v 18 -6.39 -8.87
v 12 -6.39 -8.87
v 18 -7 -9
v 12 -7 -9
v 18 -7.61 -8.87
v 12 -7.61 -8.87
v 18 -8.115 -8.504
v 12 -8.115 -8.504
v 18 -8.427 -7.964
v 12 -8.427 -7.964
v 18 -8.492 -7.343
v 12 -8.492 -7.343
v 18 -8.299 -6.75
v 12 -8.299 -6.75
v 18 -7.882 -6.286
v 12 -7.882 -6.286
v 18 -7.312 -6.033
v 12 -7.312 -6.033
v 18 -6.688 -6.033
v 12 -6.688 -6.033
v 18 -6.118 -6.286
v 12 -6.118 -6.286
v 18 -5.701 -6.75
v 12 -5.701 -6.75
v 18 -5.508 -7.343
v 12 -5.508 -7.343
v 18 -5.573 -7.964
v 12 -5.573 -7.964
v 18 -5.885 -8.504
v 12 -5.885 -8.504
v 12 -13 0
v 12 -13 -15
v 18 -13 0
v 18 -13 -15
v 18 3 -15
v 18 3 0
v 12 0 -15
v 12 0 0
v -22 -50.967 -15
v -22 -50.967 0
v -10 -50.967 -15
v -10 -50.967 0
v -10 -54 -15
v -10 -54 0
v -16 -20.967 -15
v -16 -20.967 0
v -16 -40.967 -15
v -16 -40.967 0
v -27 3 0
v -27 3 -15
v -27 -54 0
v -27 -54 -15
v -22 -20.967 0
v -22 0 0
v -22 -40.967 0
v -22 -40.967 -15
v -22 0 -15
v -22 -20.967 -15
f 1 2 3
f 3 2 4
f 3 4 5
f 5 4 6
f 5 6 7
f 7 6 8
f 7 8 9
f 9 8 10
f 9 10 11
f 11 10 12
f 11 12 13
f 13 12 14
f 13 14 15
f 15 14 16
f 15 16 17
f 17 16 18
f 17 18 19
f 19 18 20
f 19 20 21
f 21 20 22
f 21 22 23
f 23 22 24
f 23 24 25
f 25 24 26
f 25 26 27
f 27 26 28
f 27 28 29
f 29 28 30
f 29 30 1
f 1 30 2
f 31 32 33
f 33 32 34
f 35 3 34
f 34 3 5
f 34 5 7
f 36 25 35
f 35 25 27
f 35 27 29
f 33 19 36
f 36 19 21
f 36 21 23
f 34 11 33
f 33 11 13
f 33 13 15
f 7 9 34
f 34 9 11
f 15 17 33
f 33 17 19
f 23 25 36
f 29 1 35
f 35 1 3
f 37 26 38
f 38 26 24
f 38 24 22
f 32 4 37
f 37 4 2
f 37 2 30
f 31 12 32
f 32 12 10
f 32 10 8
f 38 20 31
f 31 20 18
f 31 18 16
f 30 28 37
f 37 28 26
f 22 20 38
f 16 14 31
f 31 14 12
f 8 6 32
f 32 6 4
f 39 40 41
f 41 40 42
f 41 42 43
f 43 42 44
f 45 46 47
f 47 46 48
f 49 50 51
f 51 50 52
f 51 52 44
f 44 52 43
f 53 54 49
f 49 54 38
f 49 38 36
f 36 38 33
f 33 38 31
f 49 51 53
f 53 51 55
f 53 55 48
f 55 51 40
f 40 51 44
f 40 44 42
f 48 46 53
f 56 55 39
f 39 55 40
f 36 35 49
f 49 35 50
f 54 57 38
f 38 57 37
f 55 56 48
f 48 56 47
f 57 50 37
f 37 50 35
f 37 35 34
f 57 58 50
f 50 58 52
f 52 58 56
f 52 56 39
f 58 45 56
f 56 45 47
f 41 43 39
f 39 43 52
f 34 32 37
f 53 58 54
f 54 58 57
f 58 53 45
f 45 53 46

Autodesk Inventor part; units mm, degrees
ref_plane "YZ Plane" through (0, 0, 0) normal (1, 0, 0) x (0, 1, 0)
ref_plane "XZ Plane" through (0, 0, 0) normal (0, 1, 0) x (-1, 0, 0)
ref_plane "XY Plane" through (0, 0, 0) normal (0, 0, 1) x (1, 0, 0)
sketch "Boceto1" plane through (0, 0, 0) normal (0, 1, 0) x (-1, 0, 0)
  line L0 (0, 0) -> (22, 0)
  line L1 (22, 0) -> (22, -15)
  line L2 (22, -15) -> (0, -15)
  line L3 (0, -15) -> (-12, -15)
  line L4 (-12, -15) -> (-12, 0)
  line L5 (-12, 0) -> (0, 0)
  dimension "d15" = 12
extrude "Extrusión1" add sketch "Boceto1" along normal blind 3
sketch "Boceto3" plane through (0, 3, 0) normal (0, 1, 0) x (1, 0, 0)
  line L0 (-22, 15) -> (-22, 0) projected
  line L1 (-22, 15) -> (-27, 15)
  line L2 (-27, 15) -> (-27, 0)
  line L3 (-27, 0) -> (-22, 0)
  line L4 (-22, 0) -> (-22, 15)
  point P0 (0, 0)
  dimension "d4" = 5
extrude "Extrusión2" add sketch "Boceto3" against normal blind 57
sketch "Boceto4" plane through (-22, -54, 0) normal (1, 0, 0) x (0, 0, -1)
  point P0 (0, 54)
sketch "Boceto5" plane through (-22, -54, 0) normal (1, 0, 0) x (0, 0, -1)
  line L0 (0, 57) -> (0, 0) projected
  line L1 (15, 57) -> (15, 0) projected
  line L2 (0, 0) -> (15, 0)
  line L3 (15, 0) -> (15, 3.0333)
  line L4 (15, 3.0333) -> (0, 3.0333)
  line L5 (0, 3.0333) -> (0, 0)
  point P0 (0, 54)
extrude "Extrusión3" add sketch "Boceto5" along normal blind 12
sketch "Boceto7" plane through (12, 0, 0) normal (1, 0, 0) x (0, 0, -1)
  line L0 (0, 0) -> (0, -50.9667) projected
  line L1 (0, 3) -> (0, 0)
  line L2 (0, 0) -> (0, -7)
  line L3 (0, -7) -> (10.8666, -7)
  line L4 (0, -7) -> (0, -13)
  line L5 (0, -13) -> (15, -13)
  line L6 (15, 0) -> (15, -50.9667) projected
  line L7 (15, 3) -> (15, -54) projected
  line L8 (15, 3) -> (15, -13)
  line L9 (15, 3) -> (0, 3) projected
  line L10 (15, 3) -> (0, 3)
  line L11 (0, 3) -> (0, -13)
  line L12 (0, -7) -> (15, -7)
  circle A0 centre (7.5, -7) radius 1.5
  dimension "d16" = 7
  dimension "d17" = 6
  dimension "d18" = 3
extrude "Extrusión5" add sketch "Boceto7" along normal blind 6 contours L1 L9 L7 L6 L12 L3 A0 L0 | L3 A0 L12 L6 L5 L0
sketch "Boceto8" plane through (-22, 0, 0) normal (1, 0, 0) x (0, 0, -1)
  line L0 (15, -50.9667) -> (0, -50.9667) projected
  line L1 (0, -50.9667) -> (0, -40.9667)
  line L2 (0, 0) -> (0, -50.9667) projected
  line L3 (0, -40.9667) -> (0, -38.9667)
  line L4 (0, -38.9667) -> (15, -38.9667)
  line L5 (15, 0) -> (15, -50.9667) projected
  line L6 (0, -40.9667) -> (15, -40.9667)
  line L7 (15, -40.9667) -> (15, -38.9667)
  dimension "d21" = 10
  dimension "d22" = 2
extrude "Extrusión6" add sketch "Boceto8" along normal blind 6 contours L6 L2 L4 L5
sketch "Boceto9" plane through (-22, -38.9667, 0) normal (0, 1, 0) x (1, 0, 0)
  line L0 (0, 0) -> (0, 15) projected
  line L1 (0, 0) -> (0, 15)
  line L2 (6, 15) -> (6, 0) projected
  line L3 (0, 15) -> (6, 15)
  line L4 (6, 15) -> (6, 0)
  line L5 (0, 15) -> (0, 0) projected
  line L6 (6, 0) -> (0, 0)
  point P0 (22, 0)
extrude "Extrusión7" add sketch "Boceto9" along normal blind 18
properties part number "agarre motor"
